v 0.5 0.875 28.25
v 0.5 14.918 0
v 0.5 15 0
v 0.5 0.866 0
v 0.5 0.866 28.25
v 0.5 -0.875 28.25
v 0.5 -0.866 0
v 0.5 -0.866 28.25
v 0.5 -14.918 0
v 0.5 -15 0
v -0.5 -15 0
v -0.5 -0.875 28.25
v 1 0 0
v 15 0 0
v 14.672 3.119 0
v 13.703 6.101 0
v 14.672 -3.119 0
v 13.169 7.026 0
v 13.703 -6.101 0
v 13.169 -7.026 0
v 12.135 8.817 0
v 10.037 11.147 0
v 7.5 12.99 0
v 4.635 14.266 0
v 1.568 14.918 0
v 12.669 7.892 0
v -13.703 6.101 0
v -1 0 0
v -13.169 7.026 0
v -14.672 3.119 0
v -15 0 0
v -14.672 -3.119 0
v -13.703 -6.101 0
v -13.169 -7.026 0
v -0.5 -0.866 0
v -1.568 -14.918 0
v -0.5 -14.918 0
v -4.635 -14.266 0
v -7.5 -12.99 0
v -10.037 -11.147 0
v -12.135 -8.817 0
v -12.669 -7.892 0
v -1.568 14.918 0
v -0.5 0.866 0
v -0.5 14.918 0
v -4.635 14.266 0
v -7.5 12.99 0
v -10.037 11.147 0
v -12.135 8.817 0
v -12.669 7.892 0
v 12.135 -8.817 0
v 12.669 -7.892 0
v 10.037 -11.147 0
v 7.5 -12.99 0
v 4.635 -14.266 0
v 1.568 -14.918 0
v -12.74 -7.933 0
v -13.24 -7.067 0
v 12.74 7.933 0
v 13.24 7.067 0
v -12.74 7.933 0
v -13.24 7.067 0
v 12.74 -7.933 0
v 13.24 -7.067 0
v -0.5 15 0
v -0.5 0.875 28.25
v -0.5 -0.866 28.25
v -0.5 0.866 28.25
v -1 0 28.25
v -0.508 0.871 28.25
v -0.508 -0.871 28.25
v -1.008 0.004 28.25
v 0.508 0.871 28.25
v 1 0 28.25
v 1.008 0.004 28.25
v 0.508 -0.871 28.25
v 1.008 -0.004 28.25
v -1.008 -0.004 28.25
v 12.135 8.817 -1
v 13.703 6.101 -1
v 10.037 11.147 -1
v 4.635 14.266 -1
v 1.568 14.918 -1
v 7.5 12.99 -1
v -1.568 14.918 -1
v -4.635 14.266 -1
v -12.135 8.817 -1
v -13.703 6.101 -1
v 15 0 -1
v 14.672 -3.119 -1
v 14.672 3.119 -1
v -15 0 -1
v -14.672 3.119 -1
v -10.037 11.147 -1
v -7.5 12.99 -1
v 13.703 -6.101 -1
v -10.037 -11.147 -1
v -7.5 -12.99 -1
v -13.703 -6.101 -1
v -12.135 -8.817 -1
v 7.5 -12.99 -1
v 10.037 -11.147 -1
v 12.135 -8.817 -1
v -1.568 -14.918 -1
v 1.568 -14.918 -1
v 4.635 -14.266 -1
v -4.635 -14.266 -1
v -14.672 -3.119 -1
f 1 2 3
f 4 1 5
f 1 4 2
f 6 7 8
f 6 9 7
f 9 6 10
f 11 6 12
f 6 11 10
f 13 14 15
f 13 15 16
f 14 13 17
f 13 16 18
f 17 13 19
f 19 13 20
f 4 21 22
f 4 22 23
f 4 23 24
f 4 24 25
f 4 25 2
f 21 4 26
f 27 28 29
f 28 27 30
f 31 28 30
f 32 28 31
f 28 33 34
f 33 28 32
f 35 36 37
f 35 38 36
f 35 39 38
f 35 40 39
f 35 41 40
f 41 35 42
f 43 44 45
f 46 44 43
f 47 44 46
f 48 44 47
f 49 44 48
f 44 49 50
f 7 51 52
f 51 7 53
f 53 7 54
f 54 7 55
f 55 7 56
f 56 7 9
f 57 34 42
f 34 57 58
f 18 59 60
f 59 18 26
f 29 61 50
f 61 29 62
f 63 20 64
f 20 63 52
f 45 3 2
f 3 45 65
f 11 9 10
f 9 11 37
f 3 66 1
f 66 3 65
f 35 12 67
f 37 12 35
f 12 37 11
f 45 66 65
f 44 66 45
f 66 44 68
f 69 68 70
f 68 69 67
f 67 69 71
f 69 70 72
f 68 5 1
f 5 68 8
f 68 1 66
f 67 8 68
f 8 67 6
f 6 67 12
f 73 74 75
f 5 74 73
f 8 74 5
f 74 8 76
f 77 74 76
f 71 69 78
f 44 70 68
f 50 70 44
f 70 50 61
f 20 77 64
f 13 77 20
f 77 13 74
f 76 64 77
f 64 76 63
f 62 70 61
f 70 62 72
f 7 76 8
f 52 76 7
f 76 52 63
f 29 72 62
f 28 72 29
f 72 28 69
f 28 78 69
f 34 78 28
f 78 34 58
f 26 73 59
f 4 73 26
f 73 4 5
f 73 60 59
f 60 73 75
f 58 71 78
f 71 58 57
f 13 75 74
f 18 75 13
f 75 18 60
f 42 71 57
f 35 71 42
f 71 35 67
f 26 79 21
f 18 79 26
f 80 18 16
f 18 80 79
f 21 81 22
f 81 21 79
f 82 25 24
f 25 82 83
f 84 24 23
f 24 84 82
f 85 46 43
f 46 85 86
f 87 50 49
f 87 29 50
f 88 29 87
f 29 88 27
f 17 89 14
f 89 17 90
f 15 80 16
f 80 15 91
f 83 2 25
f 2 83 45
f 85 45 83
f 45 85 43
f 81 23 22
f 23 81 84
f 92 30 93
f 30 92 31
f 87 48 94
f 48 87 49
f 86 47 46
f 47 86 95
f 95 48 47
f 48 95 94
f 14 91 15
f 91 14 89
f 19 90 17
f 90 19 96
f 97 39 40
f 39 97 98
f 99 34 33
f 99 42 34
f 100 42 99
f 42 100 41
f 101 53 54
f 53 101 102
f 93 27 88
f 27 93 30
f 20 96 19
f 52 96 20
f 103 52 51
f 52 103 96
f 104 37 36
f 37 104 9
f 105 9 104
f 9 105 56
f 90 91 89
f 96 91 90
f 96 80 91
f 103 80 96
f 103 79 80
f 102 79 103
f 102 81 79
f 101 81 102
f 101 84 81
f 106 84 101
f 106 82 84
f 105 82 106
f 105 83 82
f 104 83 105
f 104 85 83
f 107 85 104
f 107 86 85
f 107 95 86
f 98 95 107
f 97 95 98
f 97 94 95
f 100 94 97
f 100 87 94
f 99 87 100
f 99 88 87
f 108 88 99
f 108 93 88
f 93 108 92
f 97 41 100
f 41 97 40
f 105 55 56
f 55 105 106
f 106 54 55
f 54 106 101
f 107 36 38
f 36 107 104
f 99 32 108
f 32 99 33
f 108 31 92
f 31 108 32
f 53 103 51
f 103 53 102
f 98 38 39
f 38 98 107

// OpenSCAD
plane();
rotate([0,0,60]) plane();
rotate([0,0,120]) plane();


translate([0,0,-1])
cylinder(h=1, r=15);

module plane() {
    width=1;
    difference() {
        translate([width/2,0])
        rotate([0,-90])
        linear_extrude(height=width)
        polygon([[0,-15], [0,15], [30,0]]);
        
        translate([0,0,33.25])
        cube([10,10,10], center=true);
    }
}
